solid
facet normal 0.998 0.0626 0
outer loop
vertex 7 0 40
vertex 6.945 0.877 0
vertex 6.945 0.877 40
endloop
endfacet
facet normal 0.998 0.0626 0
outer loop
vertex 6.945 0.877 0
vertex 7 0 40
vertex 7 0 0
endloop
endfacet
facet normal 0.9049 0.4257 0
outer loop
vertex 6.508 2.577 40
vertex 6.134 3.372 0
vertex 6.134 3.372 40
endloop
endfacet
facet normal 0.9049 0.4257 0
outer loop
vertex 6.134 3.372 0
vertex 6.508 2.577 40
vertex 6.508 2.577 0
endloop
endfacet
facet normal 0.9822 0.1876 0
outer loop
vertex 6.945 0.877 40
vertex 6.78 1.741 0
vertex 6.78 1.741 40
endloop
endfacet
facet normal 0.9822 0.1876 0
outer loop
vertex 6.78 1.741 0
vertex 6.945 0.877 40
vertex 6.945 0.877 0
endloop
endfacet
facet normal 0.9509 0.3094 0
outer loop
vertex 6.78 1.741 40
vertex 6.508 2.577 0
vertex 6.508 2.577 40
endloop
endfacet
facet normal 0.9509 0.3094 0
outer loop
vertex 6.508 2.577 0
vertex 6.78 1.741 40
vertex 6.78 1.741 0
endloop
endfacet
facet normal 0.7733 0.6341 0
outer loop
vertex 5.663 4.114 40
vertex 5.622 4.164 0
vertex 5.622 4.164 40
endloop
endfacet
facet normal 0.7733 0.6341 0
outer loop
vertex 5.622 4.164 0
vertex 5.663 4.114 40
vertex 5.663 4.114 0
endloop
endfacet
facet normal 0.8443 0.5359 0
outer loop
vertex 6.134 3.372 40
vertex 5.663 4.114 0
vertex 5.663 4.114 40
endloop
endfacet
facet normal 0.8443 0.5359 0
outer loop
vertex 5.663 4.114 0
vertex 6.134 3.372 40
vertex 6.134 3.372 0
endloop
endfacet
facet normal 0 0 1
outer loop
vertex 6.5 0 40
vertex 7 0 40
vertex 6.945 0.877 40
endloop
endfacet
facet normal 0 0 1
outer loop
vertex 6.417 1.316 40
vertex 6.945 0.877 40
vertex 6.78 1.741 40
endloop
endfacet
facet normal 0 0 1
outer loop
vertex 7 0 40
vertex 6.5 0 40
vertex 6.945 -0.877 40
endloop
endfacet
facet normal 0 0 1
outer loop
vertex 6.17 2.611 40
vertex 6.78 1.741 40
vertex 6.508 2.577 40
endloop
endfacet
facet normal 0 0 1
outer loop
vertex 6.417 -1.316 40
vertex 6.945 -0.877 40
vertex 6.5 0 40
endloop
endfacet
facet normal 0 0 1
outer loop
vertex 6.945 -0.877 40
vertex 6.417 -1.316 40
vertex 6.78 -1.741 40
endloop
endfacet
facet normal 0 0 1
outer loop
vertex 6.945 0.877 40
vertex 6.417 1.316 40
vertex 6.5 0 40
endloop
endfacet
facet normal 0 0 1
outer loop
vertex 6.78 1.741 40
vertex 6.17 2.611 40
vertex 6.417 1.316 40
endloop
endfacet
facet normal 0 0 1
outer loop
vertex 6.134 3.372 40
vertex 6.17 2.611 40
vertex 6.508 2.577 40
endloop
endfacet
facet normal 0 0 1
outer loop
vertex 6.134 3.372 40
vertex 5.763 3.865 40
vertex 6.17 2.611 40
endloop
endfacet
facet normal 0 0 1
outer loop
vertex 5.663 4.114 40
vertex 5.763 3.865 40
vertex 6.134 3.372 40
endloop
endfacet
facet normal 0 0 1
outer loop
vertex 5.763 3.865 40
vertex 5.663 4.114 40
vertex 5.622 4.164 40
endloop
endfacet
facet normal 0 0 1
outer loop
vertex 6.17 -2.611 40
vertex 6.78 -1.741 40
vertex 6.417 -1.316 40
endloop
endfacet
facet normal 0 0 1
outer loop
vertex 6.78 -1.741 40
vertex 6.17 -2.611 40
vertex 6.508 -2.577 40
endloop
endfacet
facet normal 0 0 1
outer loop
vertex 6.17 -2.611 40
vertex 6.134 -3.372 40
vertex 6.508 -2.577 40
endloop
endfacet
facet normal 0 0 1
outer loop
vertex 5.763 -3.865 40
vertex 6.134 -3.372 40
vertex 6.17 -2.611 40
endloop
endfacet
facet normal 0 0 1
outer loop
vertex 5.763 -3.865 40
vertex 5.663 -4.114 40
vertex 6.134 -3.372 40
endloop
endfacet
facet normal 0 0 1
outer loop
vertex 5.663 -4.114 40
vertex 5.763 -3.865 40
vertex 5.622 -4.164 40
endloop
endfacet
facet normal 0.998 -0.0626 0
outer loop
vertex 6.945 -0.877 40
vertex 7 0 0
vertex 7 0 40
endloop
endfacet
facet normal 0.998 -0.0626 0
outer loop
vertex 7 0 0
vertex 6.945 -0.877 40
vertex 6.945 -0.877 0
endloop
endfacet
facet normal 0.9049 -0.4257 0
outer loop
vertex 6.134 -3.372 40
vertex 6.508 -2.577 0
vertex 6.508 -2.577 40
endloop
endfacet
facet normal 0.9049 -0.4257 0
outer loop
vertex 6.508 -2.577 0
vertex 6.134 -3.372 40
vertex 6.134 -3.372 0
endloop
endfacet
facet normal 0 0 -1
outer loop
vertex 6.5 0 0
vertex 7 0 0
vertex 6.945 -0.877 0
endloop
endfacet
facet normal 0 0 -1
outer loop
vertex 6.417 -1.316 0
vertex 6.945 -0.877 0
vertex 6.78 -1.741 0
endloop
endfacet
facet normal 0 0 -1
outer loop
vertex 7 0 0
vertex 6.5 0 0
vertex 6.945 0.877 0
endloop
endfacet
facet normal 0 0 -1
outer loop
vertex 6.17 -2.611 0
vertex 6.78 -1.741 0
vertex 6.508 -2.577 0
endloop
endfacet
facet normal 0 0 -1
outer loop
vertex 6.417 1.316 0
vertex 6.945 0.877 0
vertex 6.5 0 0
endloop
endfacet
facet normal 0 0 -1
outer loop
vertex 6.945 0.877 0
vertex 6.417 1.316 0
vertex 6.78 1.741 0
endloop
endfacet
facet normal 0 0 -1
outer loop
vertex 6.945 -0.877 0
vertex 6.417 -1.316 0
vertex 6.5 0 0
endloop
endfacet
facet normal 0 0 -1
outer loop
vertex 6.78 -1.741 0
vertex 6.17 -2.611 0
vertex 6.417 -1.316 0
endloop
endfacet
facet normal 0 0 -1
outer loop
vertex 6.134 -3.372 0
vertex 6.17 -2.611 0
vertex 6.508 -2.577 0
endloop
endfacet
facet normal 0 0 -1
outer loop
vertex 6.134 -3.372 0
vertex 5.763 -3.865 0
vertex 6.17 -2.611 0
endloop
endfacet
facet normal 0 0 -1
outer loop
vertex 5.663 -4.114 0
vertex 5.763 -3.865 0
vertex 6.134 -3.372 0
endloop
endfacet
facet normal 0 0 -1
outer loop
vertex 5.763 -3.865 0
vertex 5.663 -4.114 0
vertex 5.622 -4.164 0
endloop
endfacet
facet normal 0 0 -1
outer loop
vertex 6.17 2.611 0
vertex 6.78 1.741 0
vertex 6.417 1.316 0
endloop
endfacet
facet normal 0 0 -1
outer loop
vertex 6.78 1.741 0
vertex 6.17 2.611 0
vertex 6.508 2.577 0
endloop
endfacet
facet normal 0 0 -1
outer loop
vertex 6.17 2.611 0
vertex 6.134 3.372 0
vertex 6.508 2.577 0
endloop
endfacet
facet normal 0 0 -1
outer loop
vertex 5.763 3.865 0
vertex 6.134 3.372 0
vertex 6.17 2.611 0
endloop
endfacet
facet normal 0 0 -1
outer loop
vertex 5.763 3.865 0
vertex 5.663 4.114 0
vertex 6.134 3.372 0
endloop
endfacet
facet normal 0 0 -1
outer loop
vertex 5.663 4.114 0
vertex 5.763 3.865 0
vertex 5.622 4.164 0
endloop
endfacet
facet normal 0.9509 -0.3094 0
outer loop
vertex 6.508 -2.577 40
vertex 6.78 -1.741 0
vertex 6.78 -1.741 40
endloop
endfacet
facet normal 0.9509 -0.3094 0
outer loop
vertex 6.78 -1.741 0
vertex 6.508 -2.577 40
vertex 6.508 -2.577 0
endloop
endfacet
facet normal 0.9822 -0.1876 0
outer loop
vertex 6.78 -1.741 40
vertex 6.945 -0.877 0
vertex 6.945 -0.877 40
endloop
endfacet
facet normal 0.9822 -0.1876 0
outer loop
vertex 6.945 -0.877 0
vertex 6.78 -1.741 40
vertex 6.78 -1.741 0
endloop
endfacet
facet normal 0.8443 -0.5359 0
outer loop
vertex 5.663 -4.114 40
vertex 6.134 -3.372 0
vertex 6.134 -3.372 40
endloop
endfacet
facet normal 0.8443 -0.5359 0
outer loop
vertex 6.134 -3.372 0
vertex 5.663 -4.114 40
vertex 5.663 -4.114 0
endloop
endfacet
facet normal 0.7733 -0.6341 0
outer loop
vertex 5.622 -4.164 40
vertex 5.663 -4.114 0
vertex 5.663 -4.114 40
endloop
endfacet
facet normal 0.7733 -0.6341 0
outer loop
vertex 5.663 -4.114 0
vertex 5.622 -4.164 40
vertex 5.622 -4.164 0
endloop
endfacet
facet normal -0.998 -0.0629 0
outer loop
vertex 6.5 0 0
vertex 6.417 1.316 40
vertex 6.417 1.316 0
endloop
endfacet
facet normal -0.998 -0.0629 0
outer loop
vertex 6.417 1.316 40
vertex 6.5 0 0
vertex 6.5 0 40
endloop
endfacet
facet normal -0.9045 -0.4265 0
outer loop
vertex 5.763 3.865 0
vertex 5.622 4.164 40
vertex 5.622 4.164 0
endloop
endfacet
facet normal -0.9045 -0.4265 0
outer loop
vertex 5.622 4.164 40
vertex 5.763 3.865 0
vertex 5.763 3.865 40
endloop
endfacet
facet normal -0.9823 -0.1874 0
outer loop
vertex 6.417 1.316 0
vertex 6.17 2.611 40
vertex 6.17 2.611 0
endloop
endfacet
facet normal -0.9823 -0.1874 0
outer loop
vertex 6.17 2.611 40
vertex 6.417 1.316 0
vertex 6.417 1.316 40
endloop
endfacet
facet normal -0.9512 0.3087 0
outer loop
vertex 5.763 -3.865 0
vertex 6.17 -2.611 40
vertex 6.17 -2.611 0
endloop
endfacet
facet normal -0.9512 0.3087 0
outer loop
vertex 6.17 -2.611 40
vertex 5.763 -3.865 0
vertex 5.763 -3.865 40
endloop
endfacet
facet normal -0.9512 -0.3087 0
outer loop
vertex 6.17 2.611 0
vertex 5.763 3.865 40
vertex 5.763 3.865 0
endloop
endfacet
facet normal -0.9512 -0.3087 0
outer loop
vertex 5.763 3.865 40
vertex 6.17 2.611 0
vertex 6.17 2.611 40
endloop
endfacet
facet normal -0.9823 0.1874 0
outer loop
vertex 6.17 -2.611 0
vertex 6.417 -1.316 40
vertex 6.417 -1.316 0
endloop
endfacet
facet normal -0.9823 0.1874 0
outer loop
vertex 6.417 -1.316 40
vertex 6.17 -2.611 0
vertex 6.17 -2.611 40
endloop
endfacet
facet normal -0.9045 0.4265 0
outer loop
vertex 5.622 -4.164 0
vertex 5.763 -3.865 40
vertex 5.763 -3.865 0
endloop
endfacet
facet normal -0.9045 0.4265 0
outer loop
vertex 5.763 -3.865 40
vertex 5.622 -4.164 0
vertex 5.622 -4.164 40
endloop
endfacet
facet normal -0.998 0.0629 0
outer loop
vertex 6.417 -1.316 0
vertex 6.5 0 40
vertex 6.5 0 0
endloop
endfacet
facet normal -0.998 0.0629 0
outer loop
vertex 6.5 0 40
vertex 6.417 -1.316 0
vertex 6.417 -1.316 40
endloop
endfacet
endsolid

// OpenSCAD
$fn = 50;


difference() {
	union() {
		cylinder(h = 40, r = 7.0000000000);
		translate(v = [-7.0000000000, 0, 0]) {
			cylinder(h = 40, r = 7.0000000000);
		}
	}
	union() {
		cylinder(h = 40, r = 3.2500000000);
		cylinder(h = 40, r = 1.8000000000);
		cylinder(h = 40, r = 1.8000000000);
		cylinder(h = 40, r = 1.8000000000);
		translate(v = [-11.5000000000, 0, 0]) {
			hull() {
				translate(v = [-3.7500000000, 0.0000000000, 0]) {
					cylinder(h = 40, r = 7.5000000000);
				}
				translate(v = [3.7500000000, 0.0000000000, 0]) {
					cylinder(h = 40, r = 7.5000000000);
				}
				translate(v = [-3.7500000000, -0.0000000000, 0]) {
					cylinder(h = 40, r = 7.5000000000);
				}
				translate(v = [3.7500000000, -0.0000000000, 0]) {
					cylinder(h = 40, r = 7.5000000000);
				}
			}
		}
		translate(v = [-4.0000000000, 0, 0.0000000000]) {
			cylinder(h = 40, r = 10.5000000000);
		}
	}
}
